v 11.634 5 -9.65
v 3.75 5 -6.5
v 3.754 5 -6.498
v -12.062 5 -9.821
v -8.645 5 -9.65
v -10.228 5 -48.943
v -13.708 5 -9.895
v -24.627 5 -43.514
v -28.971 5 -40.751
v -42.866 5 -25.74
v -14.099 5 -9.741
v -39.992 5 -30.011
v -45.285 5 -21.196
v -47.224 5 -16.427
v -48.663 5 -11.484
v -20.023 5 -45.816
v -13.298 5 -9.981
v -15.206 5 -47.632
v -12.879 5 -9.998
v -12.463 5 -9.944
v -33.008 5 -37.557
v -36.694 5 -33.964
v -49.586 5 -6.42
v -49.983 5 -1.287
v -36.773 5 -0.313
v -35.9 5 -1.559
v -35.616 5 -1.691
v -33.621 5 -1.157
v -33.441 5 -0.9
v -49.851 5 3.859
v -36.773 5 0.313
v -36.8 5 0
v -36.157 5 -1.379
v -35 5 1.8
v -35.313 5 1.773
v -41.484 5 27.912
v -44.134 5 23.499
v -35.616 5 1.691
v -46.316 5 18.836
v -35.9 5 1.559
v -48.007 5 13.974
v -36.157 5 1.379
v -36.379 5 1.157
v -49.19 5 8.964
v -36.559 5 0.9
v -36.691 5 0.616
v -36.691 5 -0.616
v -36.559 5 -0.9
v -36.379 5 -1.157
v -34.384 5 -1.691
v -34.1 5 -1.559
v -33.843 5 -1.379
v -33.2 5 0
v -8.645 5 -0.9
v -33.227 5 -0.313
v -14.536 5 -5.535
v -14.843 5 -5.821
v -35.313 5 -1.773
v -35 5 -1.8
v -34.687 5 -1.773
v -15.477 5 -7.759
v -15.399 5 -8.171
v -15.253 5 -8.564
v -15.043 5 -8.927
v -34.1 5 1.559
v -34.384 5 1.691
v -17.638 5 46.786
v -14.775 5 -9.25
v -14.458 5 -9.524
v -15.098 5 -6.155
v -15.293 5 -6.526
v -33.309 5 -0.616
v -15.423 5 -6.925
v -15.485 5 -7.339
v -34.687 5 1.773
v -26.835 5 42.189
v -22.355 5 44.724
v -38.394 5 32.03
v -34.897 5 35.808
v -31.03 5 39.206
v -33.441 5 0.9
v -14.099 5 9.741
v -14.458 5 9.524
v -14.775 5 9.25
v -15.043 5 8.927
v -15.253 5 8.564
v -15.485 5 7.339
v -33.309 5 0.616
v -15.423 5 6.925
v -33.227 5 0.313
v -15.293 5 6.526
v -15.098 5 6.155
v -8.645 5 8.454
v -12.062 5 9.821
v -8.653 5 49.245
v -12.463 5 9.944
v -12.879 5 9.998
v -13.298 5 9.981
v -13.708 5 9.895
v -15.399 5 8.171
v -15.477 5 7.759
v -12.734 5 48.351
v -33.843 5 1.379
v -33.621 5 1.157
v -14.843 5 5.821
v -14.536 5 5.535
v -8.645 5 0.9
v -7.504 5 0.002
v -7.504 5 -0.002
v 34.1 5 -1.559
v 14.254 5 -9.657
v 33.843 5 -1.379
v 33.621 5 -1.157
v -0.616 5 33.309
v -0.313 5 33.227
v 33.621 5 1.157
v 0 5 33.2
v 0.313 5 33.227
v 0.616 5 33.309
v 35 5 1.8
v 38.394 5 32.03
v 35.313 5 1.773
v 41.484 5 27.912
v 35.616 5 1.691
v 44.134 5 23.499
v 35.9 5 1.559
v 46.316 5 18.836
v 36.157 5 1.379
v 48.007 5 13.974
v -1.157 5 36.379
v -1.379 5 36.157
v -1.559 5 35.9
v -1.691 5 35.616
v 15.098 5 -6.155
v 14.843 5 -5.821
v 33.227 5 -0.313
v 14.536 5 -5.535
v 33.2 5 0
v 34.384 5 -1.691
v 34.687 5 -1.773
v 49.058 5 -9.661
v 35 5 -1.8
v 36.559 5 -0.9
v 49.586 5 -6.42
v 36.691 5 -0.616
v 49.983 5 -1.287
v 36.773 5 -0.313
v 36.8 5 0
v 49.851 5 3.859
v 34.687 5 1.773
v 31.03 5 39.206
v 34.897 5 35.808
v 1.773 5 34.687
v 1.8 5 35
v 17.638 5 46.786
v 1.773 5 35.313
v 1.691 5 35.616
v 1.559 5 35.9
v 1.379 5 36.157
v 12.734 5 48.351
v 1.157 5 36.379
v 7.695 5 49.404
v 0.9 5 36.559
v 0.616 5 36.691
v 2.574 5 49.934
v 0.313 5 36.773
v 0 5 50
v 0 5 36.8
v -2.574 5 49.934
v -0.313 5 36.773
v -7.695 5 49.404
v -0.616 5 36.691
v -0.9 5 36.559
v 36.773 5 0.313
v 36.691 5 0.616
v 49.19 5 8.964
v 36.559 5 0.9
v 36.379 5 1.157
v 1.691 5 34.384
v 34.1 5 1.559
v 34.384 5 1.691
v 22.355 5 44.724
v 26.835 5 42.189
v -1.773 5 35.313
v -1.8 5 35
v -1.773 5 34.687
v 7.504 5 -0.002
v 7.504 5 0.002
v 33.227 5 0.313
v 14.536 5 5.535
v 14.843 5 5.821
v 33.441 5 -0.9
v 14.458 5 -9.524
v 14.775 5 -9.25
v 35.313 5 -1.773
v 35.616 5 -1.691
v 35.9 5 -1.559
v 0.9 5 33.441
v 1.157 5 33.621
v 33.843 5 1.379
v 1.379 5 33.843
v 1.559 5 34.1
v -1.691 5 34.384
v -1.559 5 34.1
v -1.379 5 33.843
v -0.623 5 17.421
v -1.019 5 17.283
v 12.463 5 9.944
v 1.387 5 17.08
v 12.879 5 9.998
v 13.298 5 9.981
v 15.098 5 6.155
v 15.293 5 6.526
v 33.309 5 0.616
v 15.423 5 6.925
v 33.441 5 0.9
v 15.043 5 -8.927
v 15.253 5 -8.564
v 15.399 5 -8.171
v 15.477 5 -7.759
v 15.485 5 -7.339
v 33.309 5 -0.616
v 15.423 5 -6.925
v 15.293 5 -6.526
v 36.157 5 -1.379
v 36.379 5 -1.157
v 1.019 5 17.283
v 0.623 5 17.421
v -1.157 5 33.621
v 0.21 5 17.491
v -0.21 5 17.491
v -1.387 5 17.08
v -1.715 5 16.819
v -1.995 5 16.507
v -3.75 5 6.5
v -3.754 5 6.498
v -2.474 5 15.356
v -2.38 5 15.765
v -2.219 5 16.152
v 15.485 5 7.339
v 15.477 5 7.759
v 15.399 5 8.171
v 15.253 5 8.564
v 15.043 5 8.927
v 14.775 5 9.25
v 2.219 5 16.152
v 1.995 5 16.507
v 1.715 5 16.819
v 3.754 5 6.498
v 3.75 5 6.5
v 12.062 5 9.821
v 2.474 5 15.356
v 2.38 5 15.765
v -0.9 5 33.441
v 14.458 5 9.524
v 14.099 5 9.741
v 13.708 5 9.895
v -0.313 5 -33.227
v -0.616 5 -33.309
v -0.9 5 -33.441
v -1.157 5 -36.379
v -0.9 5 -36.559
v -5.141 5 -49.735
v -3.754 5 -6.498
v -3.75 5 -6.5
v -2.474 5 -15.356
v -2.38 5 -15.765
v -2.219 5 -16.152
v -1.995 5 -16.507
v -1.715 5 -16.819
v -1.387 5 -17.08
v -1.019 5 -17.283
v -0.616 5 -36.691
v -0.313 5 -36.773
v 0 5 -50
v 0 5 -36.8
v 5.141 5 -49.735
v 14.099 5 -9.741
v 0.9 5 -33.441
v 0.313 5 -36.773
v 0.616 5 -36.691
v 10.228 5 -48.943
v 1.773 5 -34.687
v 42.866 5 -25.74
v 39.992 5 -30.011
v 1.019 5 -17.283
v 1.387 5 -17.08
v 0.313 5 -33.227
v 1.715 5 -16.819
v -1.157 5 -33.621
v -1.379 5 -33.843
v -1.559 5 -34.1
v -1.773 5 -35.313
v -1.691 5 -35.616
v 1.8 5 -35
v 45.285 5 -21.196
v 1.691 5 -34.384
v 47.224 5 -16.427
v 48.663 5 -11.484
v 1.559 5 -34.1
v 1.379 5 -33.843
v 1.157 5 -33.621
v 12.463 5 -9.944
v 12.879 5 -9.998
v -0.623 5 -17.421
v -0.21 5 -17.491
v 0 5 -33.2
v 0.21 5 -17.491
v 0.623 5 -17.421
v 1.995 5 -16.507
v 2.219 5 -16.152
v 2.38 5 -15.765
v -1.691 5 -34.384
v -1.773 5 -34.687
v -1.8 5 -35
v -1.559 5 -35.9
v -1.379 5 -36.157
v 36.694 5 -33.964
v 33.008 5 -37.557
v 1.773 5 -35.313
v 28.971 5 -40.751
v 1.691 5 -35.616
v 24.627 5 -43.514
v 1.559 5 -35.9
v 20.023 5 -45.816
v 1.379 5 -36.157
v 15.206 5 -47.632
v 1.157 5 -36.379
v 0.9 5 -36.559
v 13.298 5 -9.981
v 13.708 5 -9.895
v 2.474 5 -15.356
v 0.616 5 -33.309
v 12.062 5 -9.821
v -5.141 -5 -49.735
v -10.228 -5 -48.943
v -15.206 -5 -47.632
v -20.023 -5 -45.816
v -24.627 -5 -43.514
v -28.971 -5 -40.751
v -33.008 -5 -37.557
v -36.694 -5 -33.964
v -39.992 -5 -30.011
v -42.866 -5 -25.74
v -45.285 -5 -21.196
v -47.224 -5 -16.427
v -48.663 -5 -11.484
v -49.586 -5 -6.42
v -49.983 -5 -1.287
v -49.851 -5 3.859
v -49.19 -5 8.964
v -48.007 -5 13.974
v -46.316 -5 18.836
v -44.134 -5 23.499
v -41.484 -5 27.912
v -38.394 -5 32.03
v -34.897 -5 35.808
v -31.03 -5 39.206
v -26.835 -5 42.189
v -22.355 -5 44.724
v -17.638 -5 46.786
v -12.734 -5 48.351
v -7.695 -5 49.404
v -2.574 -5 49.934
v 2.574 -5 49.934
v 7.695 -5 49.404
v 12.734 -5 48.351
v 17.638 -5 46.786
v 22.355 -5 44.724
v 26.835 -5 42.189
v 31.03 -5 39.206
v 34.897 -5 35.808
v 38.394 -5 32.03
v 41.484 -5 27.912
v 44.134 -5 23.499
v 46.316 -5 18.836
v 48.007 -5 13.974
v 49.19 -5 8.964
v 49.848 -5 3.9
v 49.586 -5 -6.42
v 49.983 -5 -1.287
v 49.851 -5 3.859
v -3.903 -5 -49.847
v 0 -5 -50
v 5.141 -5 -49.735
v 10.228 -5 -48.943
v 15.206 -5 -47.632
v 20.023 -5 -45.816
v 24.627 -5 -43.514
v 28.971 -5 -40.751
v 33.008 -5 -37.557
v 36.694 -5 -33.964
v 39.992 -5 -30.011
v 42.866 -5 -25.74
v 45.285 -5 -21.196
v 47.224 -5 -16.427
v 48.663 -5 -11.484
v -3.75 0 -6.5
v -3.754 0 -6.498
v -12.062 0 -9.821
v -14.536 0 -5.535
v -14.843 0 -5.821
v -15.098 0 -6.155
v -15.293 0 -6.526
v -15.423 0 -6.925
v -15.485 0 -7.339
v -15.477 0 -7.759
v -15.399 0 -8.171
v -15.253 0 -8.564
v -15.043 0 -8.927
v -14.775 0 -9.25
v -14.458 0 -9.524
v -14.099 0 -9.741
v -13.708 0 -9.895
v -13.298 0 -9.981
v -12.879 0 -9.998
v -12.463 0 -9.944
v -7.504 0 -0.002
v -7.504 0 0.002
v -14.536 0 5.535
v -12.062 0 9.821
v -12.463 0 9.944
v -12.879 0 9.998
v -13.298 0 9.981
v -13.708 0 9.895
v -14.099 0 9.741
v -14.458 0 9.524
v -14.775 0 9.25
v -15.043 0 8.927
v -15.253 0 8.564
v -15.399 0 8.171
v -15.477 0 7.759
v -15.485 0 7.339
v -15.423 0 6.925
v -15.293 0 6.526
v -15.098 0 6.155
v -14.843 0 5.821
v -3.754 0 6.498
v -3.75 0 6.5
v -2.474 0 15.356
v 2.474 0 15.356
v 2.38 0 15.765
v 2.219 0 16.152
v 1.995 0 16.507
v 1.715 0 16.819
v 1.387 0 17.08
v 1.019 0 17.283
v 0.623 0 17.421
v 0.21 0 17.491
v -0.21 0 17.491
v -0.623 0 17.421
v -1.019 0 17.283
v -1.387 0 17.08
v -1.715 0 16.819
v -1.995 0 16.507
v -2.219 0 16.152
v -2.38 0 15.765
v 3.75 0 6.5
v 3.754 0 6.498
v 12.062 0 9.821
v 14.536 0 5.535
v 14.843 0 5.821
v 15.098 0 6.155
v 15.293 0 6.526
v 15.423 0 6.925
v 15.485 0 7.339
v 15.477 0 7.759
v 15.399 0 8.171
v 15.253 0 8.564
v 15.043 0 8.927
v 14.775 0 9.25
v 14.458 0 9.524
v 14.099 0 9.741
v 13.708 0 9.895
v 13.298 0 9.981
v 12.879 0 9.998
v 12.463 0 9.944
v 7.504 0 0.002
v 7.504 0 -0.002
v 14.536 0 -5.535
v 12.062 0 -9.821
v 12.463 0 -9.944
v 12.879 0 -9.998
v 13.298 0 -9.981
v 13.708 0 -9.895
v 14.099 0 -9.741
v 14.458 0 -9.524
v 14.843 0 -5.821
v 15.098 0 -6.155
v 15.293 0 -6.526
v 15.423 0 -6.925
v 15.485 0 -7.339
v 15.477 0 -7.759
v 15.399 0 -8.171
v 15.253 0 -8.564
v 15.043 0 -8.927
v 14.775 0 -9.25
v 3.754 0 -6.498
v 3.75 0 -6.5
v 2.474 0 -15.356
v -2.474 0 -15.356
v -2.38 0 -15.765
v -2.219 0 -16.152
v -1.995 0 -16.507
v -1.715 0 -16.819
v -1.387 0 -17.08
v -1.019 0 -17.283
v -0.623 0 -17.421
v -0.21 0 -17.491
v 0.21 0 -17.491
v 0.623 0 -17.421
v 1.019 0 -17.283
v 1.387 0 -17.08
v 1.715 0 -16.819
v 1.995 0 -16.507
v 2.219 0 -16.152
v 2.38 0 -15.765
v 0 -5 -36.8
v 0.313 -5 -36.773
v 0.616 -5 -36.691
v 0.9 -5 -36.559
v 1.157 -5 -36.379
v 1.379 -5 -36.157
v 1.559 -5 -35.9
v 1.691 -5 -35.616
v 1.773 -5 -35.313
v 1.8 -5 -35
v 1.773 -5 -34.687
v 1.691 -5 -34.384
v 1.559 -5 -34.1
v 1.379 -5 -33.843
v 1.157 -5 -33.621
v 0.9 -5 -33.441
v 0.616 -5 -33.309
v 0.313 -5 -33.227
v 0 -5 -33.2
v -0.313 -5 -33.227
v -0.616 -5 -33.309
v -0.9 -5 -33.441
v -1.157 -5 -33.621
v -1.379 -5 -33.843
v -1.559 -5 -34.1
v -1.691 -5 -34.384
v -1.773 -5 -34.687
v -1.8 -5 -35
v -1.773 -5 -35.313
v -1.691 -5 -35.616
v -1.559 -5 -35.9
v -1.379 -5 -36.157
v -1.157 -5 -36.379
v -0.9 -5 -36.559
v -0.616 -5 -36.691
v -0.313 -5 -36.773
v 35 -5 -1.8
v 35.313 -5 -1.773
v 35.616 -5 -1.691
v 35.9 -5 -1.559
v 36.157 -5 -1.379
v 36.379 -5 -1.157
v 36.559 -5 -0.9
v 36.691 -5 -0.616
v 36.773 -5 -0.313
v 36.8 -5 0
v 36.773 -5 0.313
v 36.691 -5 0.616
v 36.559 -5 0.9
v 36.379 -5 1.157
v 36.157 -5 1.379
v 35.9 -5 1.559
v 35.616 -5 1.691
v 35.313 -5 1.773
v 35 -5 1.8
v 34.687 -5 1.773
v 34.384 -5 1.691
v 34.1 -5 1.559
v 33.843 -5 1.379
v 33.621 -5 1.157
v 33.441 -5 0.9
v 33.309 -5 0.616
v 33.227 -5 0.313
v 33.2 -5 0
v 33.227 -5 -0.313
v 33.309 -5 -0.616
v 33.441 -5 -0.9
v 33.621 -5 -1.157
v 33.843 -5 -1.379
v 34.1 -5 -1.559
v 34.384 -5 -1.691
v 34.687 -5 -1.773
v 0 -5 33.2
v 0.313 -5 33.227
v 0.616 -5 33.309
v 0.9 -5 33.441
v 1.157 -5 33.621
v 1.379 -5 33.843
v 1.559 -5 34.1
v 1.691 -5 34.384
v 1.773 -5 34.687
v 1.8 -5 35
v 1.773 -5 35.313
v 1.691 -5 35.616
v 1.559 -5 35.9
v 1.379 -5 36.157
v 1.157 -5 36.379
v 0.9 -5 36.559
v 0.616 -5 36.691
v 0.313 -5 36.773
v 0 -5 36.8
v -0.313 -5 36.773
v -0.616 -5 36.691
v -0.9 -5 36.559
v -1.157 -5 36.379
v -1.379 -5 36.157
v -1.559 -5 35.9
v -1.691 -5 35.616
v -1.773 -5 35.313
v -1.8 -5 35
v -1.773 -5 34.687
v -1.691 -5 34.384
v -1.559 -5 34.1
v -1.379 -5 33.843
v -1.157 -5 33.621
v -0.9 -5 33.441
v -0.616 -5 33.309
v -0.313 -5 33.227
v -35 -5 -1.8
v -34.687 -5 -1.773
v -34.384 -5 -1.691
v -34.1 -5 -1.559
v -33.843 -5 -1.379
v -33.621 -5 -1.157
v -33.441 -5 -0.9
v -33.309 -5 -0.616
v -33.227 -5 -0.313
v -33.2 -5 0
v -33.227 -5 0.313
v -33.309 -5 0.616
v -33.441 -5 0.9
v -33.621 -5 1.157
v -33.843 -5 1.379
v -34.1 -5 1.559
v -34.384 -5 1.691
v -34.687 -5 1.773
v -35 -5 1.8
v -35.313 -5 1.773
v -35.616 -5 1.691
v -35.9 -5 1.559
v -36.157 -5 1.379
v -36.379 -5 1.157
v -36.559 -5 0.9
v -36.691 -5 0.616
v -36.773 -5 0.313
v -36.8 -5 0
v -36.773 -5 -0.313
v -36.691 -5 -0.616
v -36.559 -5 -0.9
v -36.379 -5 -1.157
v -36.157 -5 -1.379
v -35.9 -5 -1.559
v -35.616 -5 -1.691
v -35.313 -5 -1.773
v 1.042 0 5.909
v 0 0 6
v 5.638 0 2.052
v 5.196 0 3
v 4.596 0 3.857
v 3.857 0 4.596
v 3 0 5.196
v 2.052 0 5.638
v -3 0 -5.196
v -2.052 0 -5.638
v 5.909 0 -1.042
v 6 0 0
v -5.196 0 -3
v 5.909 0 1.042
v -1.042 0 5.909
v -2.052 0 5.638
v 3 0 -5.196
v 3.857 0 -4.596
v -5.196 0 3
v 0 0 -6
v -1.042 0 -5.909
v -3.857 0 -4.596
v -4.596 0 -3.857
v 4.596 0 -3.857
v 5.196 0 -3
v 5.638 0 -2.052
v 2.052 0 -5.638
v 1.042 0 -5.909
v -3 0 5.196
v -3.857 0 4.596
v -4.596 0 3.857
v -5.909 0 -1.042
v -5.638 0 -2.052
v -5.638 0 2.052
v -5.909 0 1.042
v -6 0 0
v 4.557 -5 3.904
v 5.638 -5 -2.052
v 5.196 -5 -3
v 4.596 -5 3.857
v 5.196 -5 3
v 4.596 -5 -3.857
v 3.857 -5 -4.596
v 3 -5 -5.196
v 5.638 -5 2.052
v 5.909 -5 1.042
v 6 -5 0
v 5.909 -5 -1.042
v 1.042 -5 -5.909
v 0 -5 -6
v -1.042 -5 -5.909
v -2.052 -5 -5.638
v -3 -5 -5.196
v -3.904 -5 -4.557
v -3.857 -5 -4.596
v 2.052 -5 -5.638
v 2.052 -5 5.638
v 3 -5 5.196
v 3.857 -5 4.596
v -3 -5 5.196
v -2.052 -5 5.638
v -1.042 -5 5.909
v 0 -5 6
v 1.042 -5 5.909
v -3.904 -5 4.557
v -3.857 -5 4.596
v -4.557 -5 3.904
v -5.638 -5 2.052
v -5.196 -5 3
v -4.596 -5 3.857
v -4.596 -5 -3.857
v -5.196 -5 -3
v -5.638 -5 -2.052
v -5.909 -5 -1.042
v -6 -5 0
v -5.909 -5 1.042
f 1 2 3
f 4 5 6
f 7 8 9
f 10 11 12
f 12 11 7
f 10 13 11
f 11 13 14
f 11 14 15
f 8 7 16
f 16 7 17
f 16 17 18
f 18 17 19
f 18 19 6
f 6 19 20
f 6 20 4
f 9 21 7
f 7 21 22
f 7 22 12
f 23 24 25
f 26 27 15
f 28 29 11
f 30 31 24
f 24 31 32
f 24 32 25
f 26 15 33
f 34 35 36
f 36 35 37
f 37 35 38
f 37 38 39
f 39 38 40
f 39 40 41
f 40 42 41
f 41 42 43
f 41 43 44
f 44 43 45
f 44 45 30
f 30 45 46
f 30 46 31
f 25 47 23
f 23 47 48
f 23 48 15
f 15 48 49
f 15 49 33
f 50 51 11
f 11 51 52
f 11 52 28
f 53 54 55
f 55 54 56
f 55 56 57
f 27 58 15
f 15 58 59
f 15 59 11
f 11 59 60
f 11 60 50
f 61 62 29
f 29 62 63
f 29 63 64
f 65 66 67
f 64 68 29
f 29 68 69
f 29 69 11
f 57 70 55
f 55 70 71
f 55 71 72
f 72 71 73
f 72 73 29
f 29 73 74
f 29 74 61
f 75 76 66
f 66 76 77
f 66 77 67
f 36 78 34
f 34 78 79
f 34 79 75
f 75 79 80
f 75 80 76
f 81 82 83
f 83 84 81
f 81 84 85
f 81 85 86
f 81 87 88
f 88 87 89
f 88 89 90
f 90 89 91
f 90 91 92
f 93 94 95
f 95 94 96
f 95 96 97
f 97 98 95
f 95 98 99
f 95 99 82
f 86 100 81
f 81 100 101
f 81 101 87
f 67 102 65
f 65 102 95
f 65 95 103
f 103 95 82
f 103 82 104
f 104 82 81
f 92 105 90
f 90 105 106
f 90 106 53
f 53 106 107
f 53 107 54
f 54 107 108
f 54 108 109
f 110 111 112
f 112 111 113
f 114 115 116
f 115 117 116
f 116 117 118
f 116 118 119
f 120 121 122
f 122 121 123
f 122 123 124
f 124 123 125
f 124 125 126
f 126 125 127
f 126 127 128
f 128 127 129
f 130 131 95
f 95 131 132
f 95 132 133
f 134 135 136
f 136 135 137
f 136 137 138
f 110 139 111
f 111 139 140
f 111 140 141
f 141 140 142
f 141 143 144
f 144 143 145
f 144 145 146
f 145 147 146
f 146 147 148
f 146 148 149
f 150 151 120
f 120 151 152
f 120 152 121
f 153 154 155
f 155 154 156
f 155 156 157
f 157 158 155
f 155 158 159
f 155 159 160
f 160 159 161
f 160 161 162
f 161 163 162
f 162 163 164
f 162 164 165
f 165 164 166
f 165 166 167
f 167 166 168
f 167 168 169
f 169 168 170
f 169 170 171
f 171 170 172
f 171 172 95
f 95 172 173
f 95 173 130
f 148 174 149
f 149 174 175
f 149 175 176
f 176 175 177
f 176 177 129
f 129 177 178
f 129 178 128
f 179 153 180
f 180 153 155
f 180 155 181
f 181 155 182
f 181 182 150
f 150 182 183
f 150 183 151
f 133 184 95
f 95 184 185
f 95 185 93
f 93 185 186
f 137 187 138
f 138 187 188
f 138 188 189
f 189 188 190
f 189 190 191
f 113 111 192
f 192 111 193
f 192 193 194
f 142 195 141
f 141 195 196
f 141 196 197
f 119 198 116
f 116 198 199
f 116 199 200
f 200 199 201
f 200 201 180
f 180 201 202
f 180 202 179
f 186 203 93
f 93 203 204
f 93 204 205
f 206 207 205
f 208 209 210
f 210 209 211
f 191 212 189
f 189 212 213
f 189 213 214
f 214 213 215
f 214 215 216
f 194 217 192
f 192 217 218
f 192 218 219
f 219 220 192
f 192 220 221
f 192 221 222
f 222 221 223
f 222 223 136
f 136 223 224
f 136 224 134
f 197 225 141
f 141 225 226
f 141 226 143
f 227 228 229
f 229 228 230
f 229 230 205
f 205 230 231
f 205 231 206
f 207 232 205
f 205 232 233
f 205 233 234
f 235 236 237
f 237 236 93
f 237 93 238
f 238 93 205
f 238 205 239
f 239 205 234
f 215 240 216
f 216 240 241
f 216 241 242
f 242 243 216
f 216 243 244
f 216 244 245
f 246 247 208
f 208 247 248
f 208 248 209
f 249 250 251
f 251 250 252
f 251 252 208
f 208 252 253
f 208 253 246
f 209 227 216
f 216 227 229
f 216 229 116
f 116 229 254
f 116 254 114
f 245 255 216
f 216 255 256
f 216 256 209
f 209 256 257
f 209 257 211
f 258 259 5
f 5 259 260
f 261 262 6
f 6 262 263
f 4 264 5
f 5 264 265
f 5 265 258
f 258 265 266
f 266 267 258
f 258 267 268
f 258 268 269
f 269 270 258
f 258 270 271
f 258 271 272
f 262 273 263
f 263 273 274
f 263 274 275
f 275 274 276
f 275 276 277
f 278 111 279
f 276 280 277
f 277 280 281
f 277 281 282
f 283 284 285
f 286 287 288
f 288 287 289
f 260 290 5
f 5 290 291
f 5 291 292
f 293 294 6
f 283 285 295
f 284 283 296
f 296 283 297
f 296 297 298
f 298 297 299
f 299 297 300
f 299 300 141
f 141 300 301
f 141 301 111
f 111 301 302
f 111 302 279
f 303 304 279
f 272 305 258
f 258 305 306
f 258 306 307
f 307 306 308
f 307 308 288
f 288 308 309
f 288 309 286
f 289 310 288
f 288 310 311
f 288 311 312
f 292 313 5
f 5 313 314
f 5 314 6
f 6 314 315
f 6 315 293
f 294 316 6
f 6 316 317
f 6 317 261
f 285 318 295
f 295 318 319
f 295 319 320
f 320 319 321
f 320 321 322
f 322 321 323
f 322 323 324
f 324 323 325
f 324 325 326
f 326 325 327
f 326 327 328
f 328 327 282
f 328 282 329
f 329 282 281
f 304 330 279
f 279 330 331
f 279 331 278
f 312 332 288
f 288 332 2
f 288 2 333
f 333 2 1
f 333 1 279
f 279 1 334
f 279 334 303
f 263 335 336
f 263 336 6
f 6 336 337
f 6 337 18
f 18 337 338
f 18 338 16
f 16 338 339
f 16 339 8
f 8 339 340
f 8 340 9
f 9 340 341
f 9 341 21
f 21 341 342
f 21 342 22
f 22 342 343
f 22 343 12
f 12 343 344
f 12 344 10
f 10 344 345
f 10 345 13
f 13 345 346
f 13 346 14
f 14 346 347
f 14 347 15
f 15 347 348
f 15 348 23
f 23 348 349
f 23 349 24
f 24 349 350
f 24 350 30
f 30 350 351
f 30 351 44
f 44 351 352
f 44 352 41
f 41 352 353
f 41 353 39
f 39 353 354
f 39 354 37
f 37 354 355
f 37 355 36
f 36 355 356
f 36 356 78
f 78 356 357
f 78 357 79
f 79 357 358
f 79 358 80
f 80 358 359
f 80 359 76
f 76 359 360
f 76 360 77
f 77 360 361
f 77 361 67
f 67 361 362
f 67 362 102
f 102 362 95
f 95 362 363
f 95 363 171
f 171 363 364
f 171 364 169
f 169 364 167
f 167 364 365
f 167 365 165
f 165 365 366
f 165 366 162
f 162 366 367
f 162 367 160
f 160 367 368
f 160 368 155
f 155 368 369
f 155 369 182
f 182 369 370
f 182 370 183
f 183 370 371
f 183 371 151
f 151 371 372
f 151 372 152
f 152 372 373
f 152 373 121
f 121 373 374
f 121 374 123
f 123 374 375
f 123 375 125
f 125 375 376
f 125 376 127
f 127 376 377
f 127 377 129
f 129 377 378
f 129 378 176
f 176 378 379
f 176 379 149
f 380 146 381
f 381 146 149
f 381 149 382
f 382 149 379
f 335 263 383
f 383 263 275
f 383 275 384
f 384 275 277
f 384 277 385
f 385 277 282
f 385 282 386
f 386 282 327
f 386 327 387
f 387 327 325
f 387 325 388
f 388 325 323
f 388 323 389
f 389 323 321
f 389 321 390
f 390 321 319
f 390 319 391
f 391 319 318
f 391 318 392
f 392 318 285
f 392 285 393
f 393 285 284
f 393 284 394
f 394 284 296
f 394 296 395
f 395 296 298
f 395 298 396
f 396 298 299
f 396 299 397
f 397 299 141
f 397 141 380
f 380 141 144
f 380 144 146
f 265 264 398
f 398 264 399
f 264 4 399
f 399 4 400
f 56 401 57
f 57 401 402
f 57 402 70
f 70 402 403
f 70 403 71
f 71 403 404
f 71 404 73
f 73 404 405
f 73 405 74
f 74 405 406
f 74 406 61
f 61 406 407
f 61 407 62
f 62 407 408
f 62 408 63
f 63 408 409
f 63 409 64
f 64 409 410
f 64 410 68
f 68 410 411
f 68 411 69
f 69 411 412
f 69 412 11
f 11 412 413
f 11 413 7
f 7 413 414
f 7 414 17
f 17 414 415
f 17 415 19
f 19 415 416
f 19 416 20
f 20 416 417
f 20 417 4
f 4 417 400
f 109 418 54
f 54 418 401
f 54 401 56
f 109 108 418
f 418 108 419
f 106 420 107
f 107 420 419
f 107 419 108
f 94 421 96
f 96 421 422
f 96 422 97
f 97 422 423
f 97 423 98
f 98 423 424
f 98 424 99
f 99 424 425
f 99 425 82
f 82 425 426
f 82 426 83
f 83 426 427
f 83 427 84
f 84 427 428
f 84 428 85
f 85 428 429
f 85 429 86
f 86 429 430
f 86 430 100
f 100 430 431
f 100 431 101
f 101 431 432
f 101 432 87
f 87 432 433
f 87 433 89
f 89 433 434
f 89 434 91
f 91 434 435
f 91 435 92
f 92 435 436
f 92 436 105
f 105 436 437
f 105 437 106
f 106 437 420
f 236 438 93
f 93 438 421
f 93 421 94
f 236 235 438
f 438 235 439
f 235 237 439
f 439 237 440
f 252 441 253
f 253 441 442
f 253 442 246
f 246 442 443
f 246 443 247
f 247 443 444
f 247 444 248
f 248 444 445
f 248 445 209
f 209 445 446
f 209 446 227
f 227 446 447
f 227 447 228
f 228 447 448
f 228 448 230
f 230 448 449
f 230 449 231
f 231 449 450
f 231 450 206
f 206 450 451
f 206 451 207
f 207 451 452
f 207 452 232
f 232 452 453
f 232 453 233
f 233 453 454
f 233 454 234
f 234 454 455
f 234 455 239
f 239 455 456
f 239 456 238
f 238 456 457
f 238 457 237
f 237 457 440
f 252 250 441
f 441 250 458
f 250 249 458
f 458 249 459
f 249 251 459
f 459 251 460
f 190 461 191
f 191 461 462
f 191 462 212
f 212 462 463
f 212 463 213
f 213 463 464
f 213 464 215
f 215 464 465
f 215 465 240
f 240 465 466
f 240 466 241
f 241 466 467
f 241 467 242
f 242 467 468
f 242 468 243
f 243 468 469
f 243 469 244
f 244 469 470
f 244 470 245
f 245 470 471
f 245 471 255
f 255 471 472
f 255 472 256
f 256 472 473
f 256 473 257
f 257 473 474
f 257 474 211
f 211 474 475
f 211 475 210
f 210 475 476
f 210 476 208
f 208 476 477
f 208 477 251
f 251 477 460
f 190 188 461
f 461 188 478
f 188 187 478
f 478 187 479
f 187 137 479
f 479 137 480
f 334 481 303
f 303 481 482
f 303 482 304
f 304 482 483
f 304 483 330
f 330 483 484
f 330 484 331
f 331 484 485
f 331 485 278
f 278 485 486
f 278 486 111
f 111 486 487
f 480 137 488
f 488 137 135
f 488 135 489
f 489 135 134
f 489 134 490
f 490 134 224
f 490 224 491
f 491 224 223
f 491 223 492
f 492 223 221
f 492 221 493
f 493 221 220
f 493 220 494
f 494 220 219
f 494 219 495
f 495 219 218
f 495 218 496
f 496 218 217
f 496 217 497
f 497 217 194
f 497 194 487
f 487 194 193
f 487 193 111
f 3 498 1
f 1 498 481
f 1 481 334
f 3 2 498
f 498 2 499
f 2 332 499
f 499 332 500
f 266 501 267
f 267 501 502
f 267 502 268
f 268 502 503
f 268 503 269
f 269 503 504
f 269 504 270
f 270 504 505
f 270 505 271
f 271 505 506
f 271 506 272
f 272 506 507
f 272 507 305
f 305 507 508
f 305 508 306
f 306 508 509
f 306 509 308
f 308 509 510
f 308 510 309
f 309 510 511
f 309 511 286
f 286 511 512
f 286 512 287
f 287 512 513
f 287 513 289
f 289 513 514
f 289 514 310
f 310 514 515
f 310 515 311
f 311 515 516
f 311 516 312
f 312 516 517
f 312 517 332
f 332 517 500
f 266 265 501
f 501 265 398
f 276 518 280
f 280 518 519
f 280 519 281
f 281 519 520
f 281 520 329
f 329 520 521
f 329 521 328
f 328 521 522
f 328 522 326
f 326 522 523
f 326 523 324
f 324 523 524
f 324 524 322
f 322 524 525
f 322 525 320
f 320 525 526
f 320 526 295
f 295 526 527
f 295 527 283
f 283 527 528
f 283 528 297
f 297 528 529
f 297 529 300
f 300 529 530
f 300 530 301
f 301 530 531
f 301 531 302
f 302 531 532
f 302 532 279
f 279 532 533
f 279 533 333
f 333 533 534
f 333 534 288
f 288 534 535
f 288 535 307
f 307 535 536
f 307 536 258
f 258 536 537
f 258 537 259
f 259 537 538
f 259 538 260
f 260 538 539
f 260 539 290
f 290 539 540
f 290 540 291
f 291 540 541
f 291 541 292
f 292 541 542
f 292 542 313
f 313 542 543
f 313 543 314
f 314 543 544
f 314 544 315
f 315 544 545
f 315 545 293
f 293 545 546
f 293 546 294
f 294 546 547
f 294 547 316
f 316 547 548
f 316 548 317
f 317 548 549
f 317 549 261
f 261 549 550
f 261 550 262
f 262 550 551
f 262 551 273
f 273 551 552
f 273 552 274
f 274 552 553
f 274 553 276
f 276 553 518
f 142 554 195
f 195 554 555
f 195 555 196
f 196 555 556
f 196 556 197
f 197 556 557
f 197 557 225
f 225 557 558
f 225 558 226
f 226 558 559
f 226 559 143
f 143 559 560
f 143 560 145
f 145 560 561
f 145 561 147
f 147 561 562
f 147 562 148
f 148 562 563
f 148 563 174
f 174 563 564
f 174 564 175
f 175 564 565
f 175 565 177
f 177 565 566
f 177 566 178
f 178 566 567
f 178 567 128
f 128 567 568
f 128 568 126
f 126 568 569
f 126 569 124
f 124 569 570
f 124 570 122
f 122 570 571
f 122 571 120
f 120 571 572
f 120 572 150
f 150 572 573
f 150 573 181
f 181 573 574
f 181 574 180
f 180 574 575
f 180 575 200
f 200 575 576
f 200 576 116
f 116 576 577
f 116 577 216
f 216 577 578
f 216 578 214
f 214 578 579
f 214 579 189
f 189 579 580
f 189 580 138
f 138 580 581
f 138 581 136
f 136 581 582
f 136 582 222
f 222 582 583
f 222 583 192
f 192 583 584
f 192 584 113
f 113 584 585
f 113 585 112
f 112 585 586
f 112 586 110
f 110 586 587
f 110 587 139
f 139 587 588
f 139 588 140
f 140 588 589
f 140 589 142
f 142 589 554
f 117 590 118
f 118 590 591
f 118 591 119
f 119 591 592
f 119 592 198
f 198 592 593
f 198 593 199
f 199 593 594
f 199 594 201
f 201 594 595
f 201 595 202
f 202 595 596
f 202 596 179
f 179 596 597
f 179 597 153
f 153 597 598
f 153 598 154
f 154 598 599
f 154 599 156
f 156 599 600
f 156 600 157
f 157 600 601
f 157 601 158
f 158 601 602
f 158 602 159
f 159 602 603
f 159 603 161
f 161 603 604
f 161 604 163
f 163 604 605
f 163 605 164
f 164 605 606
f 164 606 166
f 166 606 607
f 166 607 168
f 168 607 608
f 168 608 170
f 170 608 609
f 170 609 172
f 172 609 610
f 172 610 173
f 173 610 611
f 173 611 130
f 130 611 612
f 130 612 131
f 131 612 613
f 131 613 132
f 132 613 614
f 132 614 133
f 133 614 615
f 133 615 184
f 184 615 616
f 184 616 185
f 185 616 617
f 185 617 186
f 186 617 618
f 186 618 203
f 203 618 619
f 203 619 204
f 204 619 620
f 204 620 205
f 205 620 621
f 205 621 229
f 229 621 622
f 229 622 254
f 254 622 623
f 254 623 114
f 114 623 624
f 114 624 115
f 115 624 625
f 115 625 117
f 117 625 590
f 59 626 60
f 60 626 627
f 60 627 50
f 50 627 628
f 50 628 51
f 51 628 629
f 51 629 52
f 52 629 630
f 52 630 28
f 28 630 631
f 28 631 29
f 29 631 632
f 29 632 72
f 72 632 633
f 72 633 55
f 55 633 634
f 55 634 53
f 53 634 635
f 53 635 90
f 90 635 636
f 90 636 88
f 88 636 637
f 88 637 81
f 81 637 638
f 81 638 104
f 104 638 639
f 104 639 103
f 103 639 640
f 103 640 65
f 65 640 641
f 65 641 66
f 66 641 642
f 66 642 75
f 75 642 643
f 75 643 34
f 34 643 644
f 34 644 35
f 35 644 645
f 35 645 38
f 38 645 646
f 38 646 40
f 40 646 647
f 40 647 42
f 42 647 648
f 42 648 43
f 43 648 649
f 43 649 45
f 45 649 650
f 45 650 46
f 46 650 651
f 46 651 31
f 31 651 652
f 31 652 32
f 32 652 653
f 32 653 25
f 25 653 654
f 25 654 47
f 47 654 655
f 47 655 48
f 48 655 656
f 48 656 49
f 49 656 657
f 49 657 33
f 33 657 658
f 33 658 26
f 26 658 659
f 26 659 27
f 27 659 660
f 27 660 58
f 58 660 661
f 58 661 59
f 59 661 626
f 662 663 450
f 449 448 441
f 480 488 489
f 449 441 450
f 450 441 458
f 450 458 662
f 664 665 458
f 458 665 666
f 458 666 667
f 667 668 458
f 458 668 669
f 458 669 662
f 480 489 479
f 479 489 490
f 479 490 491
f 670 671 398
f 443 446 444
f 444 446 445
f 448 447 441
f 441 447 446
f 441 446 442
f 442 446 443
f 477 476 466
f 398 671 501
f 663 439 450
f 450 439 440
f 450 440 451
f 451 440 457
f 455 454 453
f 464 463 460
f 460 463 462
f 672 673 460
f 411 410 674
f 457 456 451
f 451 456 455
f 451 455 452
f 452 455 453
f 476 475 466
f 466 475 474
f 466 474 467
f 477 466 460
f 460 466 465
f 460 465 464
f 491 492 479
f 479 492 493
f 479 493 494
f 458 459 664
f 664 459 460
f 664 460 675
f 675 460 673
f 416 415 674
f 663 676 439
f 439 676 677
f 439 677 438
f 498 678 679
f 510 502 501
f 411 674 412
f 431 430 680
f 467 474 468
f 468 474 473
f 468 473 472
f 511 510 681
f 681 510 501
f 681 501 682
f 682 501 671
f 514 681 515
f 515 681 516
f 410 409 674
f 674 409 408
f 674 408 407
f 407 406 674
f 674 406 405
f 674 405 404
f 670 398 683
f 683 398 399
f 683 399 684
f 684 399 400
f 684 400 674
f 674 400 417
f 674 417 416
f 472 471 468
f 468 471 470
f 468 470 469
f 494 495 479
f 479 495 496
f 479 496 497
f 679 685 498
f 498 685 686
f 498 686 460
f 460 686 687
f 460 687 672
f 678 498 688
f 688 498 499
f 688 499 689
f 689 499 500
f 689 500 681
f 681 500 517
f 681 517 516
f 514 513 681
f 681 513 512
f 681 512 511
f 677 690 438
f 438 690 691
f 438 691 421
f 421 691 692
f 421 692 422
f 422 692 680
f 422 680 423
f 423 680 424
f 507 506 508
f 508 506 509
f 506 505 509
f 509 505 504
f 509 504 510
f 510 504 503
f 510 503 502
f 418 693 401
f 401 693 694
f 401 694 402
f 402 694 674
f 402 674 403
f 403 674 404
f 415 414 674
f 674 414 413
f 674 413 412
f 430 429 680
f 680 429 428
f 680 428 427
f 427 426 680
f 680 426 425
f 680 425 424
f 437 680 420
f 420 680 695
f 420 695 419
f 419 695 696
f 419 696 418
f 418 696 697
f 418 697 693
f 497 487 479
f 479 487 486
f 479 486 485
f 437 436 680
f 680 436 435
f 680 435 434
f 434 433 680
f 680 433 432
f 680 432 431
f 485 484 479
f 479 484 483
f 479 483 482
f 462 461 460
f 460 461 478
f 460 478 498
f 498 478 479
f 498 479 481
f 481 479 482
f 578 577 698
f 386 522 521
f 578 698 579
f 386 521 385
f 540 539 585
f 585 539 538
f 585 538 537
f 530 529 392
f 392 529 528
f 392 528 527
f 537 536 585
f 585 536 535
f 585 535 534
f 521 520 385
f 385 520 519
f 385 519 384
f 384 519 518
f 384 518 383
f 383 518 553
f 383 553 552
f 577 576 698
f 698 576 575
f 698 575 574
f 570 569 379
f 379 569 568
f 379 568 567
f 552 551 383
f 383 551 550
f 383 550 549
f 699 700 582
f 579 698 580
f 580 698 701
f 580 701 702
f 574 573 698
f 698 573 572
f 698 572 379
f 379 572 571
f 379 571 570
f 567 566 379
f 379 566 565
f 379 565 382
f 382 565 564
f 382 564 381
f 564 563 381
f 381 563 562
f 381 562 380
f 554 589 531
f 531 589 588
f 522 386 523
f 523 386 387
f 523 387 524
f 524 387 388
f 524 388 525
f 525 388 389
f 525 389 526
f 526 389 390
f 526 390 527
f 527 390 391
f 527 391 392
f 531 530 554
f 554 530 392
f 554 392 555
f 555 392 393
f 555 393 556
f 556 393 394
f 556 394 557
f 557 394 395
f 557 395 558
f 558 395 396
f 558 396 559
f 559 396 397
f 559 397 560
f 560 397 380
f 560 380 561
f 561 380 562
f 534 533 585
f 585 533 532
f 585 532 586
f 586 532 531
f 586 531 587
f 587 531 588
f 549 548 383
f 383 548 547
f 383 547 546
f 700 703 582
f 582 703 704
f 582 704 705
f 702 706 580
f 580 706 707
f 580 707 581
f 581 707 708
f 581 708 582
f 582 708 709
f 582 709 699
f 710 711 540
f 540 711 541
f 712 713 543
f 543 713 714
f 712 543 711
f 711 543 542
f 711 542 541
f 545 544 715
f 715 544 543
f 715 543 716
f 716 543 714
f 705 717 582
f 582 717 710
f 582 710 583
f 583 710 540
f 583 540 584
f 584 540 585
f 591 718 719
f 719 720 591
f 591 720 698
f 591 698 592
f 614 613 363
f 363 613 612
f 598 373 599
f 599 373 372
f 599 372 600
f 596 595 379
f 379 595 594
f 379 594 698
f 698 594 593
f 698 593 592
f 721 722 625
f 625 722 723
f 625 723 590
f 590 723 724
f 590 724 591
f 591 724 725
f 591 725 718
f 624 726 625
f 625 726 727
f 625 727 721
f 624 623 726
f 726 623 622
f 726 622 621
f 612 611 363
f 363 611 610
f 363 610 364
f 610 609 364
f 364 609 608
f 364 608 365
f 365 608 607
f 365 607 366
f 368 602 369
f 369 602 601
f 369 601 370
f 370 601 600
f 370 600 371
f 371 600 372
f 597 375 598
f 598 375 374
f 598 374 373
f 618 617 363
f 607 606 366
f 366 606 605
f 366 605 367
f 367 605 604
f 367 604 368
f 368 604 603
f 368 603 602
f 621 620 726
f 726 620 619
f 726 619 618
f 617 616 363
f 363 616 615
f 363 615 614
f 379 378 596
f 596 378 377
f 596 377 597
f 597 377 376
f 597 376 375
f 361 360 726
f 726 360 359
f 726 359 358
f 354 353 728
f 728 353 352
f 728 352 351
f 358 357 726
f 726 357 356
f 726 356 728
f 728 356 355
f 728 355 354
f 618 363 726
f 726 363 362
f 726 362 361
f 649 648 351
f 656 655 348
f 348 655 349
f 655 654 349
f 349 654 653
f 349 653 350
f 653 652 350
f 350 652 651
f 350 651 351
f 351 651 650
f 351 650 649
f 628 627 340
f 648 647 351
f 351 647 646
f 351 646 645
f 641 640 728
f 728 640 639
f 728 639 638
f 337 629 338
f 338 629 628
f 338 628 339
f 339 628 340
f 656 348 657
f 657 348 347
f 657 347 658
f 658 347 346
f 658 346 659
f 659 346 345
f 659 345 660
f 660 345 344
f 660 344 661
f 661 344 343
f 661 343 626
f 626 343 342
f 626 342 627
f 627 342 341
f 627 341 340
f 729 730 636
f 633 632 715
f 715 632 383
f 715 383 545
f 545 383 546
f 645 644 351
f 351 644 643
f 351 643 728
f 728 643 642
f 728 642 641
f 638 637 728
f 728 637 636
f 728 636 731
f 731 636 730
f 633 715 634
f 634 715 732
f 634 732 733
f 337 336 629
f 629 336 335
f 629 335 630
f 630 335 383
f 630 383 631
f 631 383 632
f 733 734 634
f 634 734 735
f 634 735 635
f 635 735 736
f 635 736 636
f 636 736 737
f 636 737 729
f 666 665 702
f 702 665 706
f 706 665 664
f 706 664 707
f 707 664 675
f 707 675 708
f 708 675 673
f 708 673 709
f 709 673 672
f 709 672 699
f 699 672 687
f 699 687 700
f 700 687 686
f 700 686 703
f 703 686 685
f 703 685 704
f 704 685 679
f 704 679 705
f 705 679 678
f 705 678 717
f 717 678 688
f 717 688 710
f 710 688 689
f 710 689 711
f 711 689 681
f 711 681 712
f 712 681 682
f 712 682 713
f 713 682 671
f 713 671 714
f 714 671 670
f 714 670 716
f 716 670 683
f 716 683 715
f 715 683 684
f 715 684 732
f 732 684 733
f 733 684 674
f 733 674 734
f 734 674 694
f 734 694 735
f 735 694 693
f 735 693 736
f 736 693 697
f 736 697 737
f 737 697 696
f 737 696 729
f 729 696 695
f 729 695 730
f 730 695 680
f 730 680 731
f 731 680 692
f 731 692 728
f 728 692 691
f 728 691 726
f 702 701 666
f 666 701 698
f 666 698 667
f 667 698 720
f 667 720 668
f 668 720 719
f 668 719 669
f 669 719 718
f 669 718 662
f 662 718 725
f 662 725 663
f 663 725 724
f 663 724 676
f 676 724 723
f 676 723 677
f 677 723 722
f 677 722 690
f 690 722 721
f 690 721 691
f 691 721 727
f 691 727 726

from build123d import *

# Parameters (mm, degrees)
SKETCH1_R           = 50
SKETCH1_R_2         = 1.8
BOSS_EXTRUDE1_DEPTH = 5
BOSS_EXTRUDE2_START = 5
SKETCH2_R           = 50
SKETCH2_R_2         = 1.8
SKETCH2_R_3         = 6
BOSS_EXTRUDE2_DEPTH = 5


with BuildPart() as part:
    # Sketch1 → Boss-Extrude1 (new body)
    with BuildSketch(Plane(origin=(0, 0, 0), x_dir=(1, 0, 0), z_dir=(0, 1, 0))):
        with Locations(Location((0, 0, 0), (0, 0, 270))):
            Circle(SKETCH1_R)
        with Locations(Location((0, 35, 0), (0, 0, 270))):
            Circle(SKETCH1_R_2, mode=Mode.SUBTRACT)
        with Locations(Location((35, 0, 0), (0, 0, 270))):
            Circle(SKETCH1_R_2, mode=Mode.SUBTRACT)
        with Locations(Location((0, -35, 0), (0, 0, 270))):
            Circle(SKETCH1_R_2, mode=Mode.SUBTRACT)
        with Locations(Location((-35, 0, 0), (0, 0, 270))):
            Circle(SKETCH1_R_2, mode=Mode.SUBTRACT)
        with BuildLine():
            Line((-3.75, 6.5), (-2.47446787, 15.356382884))
            ThreePointArc((-2.47446787, 15.356382884), (0, 17.5), (2.47446787, 15.356382884))
            Line((2.47446787, 15.356382884), (3.75, 6.5))
            Line((3.75, 6.5), (3.754165125, 6.497595264))
            Line((3.754165125, 6.497595264), (12.061783753, 9.821143478))
            ThreePointArc((12.061783753, 9.821143478), (15.155444566, 8.75), (14.536251623, 5.535239406))
            Line((14.536251623, 5.535239406), (7.504165125, 0.002404736))
            Line((7.504165125, 0.002404736), (7.504165125, -0.002404736))
            Line((7.504165125, -0.002404736), (14.536251623, -5.535239406))
            ThreePointArc((14.536251623, -5.535239406), (15.155444566, -8.75), (12.061783753, -9.821143478))
            Line((12.061783753, -9.821143478), (3.754165125, -6.497595264))
            Line((3.754165125, -6.497595264), (3.75, -6.5))
            Line((3.75, -6.5), (2.47446787, -15.356382884))
            ThreePointArc((2.47446787, -15.356382884), (0, -17.5), (-2.47446787, -15.356382884))
            Line((-2.47446787, -15.356382884), (-3.75, -6.5))
            Line((-3.75, -6.5), (-3.754165125, -6.497595264))
            Line((-3.754165125, -6.497595264), (-12.061783753, -9.821143478))
            ThreePointArc((-12.061783753, -9.821143478), (-15.155444566, -8.75), (-14.536251623, -5.535239406))
            Line((-14.536251623, -5.535239406), (-7.504165125, -0.002404736))
            Line((-7.504165125, -0.002404736), (-7.504165125, 0.002404736))
            Line((-7.504165125, 0.002404736), (-14.536251623, 5.535239406))
            ThreePointArc((-14.536251623, 5.535239406), (-15.155444566, 8.75), (-12.061783753, 9.821143478))
            Line((-12.061783753, 9.821143478), (-3.754165125, 6.497595264))
            Line((-3.754165125, 6.497595264), (-3.75, 6.5))
        make_face(mode=Mode.SUBTRACT)
    extrude(amount=BOSS_EXTRUDE1_DEPTH)

    # Sketch2 → Boss-Extrude2 (add)
    with BuildSketch(Plane.XZ.offset(BOSS_EXTRUDE2_START)):
        with Locations(Location((0, 0, 0), (0, 0, 270))):
            Circle(SKETCH2_R)
        with Locations(Location((-35, 0, 0), (0, 0, 270))):
            Circle(SKETCH2_R_2, mode=Mode.SUBTRACT)
        with Locations(Location((0, 35, 0), (0, 0, 270))):
            Circle(SKETCH2_R_2, mode=Mode.SUBTRACT)
        with Locations(Location((35, 0, 0), (0, 0, 270))):
            Circle(SKETCH2_R_2, mode=Mode.SUBTRACT)
        with Locations(Location((0, -35, 0), (0, 0, 270))):
            Circle(SKETCH2_R_2, mode=Mode.SUBTRACT)
        with Locations(Location((0, 0, 0), (0, 0, 270))):
            Circle(SKETCH2_R_3, mode=Mode.SUBTRACT)
    extrude(amount=-BOSS_EXTRUDE2_DEPTH)


solid = part.part
